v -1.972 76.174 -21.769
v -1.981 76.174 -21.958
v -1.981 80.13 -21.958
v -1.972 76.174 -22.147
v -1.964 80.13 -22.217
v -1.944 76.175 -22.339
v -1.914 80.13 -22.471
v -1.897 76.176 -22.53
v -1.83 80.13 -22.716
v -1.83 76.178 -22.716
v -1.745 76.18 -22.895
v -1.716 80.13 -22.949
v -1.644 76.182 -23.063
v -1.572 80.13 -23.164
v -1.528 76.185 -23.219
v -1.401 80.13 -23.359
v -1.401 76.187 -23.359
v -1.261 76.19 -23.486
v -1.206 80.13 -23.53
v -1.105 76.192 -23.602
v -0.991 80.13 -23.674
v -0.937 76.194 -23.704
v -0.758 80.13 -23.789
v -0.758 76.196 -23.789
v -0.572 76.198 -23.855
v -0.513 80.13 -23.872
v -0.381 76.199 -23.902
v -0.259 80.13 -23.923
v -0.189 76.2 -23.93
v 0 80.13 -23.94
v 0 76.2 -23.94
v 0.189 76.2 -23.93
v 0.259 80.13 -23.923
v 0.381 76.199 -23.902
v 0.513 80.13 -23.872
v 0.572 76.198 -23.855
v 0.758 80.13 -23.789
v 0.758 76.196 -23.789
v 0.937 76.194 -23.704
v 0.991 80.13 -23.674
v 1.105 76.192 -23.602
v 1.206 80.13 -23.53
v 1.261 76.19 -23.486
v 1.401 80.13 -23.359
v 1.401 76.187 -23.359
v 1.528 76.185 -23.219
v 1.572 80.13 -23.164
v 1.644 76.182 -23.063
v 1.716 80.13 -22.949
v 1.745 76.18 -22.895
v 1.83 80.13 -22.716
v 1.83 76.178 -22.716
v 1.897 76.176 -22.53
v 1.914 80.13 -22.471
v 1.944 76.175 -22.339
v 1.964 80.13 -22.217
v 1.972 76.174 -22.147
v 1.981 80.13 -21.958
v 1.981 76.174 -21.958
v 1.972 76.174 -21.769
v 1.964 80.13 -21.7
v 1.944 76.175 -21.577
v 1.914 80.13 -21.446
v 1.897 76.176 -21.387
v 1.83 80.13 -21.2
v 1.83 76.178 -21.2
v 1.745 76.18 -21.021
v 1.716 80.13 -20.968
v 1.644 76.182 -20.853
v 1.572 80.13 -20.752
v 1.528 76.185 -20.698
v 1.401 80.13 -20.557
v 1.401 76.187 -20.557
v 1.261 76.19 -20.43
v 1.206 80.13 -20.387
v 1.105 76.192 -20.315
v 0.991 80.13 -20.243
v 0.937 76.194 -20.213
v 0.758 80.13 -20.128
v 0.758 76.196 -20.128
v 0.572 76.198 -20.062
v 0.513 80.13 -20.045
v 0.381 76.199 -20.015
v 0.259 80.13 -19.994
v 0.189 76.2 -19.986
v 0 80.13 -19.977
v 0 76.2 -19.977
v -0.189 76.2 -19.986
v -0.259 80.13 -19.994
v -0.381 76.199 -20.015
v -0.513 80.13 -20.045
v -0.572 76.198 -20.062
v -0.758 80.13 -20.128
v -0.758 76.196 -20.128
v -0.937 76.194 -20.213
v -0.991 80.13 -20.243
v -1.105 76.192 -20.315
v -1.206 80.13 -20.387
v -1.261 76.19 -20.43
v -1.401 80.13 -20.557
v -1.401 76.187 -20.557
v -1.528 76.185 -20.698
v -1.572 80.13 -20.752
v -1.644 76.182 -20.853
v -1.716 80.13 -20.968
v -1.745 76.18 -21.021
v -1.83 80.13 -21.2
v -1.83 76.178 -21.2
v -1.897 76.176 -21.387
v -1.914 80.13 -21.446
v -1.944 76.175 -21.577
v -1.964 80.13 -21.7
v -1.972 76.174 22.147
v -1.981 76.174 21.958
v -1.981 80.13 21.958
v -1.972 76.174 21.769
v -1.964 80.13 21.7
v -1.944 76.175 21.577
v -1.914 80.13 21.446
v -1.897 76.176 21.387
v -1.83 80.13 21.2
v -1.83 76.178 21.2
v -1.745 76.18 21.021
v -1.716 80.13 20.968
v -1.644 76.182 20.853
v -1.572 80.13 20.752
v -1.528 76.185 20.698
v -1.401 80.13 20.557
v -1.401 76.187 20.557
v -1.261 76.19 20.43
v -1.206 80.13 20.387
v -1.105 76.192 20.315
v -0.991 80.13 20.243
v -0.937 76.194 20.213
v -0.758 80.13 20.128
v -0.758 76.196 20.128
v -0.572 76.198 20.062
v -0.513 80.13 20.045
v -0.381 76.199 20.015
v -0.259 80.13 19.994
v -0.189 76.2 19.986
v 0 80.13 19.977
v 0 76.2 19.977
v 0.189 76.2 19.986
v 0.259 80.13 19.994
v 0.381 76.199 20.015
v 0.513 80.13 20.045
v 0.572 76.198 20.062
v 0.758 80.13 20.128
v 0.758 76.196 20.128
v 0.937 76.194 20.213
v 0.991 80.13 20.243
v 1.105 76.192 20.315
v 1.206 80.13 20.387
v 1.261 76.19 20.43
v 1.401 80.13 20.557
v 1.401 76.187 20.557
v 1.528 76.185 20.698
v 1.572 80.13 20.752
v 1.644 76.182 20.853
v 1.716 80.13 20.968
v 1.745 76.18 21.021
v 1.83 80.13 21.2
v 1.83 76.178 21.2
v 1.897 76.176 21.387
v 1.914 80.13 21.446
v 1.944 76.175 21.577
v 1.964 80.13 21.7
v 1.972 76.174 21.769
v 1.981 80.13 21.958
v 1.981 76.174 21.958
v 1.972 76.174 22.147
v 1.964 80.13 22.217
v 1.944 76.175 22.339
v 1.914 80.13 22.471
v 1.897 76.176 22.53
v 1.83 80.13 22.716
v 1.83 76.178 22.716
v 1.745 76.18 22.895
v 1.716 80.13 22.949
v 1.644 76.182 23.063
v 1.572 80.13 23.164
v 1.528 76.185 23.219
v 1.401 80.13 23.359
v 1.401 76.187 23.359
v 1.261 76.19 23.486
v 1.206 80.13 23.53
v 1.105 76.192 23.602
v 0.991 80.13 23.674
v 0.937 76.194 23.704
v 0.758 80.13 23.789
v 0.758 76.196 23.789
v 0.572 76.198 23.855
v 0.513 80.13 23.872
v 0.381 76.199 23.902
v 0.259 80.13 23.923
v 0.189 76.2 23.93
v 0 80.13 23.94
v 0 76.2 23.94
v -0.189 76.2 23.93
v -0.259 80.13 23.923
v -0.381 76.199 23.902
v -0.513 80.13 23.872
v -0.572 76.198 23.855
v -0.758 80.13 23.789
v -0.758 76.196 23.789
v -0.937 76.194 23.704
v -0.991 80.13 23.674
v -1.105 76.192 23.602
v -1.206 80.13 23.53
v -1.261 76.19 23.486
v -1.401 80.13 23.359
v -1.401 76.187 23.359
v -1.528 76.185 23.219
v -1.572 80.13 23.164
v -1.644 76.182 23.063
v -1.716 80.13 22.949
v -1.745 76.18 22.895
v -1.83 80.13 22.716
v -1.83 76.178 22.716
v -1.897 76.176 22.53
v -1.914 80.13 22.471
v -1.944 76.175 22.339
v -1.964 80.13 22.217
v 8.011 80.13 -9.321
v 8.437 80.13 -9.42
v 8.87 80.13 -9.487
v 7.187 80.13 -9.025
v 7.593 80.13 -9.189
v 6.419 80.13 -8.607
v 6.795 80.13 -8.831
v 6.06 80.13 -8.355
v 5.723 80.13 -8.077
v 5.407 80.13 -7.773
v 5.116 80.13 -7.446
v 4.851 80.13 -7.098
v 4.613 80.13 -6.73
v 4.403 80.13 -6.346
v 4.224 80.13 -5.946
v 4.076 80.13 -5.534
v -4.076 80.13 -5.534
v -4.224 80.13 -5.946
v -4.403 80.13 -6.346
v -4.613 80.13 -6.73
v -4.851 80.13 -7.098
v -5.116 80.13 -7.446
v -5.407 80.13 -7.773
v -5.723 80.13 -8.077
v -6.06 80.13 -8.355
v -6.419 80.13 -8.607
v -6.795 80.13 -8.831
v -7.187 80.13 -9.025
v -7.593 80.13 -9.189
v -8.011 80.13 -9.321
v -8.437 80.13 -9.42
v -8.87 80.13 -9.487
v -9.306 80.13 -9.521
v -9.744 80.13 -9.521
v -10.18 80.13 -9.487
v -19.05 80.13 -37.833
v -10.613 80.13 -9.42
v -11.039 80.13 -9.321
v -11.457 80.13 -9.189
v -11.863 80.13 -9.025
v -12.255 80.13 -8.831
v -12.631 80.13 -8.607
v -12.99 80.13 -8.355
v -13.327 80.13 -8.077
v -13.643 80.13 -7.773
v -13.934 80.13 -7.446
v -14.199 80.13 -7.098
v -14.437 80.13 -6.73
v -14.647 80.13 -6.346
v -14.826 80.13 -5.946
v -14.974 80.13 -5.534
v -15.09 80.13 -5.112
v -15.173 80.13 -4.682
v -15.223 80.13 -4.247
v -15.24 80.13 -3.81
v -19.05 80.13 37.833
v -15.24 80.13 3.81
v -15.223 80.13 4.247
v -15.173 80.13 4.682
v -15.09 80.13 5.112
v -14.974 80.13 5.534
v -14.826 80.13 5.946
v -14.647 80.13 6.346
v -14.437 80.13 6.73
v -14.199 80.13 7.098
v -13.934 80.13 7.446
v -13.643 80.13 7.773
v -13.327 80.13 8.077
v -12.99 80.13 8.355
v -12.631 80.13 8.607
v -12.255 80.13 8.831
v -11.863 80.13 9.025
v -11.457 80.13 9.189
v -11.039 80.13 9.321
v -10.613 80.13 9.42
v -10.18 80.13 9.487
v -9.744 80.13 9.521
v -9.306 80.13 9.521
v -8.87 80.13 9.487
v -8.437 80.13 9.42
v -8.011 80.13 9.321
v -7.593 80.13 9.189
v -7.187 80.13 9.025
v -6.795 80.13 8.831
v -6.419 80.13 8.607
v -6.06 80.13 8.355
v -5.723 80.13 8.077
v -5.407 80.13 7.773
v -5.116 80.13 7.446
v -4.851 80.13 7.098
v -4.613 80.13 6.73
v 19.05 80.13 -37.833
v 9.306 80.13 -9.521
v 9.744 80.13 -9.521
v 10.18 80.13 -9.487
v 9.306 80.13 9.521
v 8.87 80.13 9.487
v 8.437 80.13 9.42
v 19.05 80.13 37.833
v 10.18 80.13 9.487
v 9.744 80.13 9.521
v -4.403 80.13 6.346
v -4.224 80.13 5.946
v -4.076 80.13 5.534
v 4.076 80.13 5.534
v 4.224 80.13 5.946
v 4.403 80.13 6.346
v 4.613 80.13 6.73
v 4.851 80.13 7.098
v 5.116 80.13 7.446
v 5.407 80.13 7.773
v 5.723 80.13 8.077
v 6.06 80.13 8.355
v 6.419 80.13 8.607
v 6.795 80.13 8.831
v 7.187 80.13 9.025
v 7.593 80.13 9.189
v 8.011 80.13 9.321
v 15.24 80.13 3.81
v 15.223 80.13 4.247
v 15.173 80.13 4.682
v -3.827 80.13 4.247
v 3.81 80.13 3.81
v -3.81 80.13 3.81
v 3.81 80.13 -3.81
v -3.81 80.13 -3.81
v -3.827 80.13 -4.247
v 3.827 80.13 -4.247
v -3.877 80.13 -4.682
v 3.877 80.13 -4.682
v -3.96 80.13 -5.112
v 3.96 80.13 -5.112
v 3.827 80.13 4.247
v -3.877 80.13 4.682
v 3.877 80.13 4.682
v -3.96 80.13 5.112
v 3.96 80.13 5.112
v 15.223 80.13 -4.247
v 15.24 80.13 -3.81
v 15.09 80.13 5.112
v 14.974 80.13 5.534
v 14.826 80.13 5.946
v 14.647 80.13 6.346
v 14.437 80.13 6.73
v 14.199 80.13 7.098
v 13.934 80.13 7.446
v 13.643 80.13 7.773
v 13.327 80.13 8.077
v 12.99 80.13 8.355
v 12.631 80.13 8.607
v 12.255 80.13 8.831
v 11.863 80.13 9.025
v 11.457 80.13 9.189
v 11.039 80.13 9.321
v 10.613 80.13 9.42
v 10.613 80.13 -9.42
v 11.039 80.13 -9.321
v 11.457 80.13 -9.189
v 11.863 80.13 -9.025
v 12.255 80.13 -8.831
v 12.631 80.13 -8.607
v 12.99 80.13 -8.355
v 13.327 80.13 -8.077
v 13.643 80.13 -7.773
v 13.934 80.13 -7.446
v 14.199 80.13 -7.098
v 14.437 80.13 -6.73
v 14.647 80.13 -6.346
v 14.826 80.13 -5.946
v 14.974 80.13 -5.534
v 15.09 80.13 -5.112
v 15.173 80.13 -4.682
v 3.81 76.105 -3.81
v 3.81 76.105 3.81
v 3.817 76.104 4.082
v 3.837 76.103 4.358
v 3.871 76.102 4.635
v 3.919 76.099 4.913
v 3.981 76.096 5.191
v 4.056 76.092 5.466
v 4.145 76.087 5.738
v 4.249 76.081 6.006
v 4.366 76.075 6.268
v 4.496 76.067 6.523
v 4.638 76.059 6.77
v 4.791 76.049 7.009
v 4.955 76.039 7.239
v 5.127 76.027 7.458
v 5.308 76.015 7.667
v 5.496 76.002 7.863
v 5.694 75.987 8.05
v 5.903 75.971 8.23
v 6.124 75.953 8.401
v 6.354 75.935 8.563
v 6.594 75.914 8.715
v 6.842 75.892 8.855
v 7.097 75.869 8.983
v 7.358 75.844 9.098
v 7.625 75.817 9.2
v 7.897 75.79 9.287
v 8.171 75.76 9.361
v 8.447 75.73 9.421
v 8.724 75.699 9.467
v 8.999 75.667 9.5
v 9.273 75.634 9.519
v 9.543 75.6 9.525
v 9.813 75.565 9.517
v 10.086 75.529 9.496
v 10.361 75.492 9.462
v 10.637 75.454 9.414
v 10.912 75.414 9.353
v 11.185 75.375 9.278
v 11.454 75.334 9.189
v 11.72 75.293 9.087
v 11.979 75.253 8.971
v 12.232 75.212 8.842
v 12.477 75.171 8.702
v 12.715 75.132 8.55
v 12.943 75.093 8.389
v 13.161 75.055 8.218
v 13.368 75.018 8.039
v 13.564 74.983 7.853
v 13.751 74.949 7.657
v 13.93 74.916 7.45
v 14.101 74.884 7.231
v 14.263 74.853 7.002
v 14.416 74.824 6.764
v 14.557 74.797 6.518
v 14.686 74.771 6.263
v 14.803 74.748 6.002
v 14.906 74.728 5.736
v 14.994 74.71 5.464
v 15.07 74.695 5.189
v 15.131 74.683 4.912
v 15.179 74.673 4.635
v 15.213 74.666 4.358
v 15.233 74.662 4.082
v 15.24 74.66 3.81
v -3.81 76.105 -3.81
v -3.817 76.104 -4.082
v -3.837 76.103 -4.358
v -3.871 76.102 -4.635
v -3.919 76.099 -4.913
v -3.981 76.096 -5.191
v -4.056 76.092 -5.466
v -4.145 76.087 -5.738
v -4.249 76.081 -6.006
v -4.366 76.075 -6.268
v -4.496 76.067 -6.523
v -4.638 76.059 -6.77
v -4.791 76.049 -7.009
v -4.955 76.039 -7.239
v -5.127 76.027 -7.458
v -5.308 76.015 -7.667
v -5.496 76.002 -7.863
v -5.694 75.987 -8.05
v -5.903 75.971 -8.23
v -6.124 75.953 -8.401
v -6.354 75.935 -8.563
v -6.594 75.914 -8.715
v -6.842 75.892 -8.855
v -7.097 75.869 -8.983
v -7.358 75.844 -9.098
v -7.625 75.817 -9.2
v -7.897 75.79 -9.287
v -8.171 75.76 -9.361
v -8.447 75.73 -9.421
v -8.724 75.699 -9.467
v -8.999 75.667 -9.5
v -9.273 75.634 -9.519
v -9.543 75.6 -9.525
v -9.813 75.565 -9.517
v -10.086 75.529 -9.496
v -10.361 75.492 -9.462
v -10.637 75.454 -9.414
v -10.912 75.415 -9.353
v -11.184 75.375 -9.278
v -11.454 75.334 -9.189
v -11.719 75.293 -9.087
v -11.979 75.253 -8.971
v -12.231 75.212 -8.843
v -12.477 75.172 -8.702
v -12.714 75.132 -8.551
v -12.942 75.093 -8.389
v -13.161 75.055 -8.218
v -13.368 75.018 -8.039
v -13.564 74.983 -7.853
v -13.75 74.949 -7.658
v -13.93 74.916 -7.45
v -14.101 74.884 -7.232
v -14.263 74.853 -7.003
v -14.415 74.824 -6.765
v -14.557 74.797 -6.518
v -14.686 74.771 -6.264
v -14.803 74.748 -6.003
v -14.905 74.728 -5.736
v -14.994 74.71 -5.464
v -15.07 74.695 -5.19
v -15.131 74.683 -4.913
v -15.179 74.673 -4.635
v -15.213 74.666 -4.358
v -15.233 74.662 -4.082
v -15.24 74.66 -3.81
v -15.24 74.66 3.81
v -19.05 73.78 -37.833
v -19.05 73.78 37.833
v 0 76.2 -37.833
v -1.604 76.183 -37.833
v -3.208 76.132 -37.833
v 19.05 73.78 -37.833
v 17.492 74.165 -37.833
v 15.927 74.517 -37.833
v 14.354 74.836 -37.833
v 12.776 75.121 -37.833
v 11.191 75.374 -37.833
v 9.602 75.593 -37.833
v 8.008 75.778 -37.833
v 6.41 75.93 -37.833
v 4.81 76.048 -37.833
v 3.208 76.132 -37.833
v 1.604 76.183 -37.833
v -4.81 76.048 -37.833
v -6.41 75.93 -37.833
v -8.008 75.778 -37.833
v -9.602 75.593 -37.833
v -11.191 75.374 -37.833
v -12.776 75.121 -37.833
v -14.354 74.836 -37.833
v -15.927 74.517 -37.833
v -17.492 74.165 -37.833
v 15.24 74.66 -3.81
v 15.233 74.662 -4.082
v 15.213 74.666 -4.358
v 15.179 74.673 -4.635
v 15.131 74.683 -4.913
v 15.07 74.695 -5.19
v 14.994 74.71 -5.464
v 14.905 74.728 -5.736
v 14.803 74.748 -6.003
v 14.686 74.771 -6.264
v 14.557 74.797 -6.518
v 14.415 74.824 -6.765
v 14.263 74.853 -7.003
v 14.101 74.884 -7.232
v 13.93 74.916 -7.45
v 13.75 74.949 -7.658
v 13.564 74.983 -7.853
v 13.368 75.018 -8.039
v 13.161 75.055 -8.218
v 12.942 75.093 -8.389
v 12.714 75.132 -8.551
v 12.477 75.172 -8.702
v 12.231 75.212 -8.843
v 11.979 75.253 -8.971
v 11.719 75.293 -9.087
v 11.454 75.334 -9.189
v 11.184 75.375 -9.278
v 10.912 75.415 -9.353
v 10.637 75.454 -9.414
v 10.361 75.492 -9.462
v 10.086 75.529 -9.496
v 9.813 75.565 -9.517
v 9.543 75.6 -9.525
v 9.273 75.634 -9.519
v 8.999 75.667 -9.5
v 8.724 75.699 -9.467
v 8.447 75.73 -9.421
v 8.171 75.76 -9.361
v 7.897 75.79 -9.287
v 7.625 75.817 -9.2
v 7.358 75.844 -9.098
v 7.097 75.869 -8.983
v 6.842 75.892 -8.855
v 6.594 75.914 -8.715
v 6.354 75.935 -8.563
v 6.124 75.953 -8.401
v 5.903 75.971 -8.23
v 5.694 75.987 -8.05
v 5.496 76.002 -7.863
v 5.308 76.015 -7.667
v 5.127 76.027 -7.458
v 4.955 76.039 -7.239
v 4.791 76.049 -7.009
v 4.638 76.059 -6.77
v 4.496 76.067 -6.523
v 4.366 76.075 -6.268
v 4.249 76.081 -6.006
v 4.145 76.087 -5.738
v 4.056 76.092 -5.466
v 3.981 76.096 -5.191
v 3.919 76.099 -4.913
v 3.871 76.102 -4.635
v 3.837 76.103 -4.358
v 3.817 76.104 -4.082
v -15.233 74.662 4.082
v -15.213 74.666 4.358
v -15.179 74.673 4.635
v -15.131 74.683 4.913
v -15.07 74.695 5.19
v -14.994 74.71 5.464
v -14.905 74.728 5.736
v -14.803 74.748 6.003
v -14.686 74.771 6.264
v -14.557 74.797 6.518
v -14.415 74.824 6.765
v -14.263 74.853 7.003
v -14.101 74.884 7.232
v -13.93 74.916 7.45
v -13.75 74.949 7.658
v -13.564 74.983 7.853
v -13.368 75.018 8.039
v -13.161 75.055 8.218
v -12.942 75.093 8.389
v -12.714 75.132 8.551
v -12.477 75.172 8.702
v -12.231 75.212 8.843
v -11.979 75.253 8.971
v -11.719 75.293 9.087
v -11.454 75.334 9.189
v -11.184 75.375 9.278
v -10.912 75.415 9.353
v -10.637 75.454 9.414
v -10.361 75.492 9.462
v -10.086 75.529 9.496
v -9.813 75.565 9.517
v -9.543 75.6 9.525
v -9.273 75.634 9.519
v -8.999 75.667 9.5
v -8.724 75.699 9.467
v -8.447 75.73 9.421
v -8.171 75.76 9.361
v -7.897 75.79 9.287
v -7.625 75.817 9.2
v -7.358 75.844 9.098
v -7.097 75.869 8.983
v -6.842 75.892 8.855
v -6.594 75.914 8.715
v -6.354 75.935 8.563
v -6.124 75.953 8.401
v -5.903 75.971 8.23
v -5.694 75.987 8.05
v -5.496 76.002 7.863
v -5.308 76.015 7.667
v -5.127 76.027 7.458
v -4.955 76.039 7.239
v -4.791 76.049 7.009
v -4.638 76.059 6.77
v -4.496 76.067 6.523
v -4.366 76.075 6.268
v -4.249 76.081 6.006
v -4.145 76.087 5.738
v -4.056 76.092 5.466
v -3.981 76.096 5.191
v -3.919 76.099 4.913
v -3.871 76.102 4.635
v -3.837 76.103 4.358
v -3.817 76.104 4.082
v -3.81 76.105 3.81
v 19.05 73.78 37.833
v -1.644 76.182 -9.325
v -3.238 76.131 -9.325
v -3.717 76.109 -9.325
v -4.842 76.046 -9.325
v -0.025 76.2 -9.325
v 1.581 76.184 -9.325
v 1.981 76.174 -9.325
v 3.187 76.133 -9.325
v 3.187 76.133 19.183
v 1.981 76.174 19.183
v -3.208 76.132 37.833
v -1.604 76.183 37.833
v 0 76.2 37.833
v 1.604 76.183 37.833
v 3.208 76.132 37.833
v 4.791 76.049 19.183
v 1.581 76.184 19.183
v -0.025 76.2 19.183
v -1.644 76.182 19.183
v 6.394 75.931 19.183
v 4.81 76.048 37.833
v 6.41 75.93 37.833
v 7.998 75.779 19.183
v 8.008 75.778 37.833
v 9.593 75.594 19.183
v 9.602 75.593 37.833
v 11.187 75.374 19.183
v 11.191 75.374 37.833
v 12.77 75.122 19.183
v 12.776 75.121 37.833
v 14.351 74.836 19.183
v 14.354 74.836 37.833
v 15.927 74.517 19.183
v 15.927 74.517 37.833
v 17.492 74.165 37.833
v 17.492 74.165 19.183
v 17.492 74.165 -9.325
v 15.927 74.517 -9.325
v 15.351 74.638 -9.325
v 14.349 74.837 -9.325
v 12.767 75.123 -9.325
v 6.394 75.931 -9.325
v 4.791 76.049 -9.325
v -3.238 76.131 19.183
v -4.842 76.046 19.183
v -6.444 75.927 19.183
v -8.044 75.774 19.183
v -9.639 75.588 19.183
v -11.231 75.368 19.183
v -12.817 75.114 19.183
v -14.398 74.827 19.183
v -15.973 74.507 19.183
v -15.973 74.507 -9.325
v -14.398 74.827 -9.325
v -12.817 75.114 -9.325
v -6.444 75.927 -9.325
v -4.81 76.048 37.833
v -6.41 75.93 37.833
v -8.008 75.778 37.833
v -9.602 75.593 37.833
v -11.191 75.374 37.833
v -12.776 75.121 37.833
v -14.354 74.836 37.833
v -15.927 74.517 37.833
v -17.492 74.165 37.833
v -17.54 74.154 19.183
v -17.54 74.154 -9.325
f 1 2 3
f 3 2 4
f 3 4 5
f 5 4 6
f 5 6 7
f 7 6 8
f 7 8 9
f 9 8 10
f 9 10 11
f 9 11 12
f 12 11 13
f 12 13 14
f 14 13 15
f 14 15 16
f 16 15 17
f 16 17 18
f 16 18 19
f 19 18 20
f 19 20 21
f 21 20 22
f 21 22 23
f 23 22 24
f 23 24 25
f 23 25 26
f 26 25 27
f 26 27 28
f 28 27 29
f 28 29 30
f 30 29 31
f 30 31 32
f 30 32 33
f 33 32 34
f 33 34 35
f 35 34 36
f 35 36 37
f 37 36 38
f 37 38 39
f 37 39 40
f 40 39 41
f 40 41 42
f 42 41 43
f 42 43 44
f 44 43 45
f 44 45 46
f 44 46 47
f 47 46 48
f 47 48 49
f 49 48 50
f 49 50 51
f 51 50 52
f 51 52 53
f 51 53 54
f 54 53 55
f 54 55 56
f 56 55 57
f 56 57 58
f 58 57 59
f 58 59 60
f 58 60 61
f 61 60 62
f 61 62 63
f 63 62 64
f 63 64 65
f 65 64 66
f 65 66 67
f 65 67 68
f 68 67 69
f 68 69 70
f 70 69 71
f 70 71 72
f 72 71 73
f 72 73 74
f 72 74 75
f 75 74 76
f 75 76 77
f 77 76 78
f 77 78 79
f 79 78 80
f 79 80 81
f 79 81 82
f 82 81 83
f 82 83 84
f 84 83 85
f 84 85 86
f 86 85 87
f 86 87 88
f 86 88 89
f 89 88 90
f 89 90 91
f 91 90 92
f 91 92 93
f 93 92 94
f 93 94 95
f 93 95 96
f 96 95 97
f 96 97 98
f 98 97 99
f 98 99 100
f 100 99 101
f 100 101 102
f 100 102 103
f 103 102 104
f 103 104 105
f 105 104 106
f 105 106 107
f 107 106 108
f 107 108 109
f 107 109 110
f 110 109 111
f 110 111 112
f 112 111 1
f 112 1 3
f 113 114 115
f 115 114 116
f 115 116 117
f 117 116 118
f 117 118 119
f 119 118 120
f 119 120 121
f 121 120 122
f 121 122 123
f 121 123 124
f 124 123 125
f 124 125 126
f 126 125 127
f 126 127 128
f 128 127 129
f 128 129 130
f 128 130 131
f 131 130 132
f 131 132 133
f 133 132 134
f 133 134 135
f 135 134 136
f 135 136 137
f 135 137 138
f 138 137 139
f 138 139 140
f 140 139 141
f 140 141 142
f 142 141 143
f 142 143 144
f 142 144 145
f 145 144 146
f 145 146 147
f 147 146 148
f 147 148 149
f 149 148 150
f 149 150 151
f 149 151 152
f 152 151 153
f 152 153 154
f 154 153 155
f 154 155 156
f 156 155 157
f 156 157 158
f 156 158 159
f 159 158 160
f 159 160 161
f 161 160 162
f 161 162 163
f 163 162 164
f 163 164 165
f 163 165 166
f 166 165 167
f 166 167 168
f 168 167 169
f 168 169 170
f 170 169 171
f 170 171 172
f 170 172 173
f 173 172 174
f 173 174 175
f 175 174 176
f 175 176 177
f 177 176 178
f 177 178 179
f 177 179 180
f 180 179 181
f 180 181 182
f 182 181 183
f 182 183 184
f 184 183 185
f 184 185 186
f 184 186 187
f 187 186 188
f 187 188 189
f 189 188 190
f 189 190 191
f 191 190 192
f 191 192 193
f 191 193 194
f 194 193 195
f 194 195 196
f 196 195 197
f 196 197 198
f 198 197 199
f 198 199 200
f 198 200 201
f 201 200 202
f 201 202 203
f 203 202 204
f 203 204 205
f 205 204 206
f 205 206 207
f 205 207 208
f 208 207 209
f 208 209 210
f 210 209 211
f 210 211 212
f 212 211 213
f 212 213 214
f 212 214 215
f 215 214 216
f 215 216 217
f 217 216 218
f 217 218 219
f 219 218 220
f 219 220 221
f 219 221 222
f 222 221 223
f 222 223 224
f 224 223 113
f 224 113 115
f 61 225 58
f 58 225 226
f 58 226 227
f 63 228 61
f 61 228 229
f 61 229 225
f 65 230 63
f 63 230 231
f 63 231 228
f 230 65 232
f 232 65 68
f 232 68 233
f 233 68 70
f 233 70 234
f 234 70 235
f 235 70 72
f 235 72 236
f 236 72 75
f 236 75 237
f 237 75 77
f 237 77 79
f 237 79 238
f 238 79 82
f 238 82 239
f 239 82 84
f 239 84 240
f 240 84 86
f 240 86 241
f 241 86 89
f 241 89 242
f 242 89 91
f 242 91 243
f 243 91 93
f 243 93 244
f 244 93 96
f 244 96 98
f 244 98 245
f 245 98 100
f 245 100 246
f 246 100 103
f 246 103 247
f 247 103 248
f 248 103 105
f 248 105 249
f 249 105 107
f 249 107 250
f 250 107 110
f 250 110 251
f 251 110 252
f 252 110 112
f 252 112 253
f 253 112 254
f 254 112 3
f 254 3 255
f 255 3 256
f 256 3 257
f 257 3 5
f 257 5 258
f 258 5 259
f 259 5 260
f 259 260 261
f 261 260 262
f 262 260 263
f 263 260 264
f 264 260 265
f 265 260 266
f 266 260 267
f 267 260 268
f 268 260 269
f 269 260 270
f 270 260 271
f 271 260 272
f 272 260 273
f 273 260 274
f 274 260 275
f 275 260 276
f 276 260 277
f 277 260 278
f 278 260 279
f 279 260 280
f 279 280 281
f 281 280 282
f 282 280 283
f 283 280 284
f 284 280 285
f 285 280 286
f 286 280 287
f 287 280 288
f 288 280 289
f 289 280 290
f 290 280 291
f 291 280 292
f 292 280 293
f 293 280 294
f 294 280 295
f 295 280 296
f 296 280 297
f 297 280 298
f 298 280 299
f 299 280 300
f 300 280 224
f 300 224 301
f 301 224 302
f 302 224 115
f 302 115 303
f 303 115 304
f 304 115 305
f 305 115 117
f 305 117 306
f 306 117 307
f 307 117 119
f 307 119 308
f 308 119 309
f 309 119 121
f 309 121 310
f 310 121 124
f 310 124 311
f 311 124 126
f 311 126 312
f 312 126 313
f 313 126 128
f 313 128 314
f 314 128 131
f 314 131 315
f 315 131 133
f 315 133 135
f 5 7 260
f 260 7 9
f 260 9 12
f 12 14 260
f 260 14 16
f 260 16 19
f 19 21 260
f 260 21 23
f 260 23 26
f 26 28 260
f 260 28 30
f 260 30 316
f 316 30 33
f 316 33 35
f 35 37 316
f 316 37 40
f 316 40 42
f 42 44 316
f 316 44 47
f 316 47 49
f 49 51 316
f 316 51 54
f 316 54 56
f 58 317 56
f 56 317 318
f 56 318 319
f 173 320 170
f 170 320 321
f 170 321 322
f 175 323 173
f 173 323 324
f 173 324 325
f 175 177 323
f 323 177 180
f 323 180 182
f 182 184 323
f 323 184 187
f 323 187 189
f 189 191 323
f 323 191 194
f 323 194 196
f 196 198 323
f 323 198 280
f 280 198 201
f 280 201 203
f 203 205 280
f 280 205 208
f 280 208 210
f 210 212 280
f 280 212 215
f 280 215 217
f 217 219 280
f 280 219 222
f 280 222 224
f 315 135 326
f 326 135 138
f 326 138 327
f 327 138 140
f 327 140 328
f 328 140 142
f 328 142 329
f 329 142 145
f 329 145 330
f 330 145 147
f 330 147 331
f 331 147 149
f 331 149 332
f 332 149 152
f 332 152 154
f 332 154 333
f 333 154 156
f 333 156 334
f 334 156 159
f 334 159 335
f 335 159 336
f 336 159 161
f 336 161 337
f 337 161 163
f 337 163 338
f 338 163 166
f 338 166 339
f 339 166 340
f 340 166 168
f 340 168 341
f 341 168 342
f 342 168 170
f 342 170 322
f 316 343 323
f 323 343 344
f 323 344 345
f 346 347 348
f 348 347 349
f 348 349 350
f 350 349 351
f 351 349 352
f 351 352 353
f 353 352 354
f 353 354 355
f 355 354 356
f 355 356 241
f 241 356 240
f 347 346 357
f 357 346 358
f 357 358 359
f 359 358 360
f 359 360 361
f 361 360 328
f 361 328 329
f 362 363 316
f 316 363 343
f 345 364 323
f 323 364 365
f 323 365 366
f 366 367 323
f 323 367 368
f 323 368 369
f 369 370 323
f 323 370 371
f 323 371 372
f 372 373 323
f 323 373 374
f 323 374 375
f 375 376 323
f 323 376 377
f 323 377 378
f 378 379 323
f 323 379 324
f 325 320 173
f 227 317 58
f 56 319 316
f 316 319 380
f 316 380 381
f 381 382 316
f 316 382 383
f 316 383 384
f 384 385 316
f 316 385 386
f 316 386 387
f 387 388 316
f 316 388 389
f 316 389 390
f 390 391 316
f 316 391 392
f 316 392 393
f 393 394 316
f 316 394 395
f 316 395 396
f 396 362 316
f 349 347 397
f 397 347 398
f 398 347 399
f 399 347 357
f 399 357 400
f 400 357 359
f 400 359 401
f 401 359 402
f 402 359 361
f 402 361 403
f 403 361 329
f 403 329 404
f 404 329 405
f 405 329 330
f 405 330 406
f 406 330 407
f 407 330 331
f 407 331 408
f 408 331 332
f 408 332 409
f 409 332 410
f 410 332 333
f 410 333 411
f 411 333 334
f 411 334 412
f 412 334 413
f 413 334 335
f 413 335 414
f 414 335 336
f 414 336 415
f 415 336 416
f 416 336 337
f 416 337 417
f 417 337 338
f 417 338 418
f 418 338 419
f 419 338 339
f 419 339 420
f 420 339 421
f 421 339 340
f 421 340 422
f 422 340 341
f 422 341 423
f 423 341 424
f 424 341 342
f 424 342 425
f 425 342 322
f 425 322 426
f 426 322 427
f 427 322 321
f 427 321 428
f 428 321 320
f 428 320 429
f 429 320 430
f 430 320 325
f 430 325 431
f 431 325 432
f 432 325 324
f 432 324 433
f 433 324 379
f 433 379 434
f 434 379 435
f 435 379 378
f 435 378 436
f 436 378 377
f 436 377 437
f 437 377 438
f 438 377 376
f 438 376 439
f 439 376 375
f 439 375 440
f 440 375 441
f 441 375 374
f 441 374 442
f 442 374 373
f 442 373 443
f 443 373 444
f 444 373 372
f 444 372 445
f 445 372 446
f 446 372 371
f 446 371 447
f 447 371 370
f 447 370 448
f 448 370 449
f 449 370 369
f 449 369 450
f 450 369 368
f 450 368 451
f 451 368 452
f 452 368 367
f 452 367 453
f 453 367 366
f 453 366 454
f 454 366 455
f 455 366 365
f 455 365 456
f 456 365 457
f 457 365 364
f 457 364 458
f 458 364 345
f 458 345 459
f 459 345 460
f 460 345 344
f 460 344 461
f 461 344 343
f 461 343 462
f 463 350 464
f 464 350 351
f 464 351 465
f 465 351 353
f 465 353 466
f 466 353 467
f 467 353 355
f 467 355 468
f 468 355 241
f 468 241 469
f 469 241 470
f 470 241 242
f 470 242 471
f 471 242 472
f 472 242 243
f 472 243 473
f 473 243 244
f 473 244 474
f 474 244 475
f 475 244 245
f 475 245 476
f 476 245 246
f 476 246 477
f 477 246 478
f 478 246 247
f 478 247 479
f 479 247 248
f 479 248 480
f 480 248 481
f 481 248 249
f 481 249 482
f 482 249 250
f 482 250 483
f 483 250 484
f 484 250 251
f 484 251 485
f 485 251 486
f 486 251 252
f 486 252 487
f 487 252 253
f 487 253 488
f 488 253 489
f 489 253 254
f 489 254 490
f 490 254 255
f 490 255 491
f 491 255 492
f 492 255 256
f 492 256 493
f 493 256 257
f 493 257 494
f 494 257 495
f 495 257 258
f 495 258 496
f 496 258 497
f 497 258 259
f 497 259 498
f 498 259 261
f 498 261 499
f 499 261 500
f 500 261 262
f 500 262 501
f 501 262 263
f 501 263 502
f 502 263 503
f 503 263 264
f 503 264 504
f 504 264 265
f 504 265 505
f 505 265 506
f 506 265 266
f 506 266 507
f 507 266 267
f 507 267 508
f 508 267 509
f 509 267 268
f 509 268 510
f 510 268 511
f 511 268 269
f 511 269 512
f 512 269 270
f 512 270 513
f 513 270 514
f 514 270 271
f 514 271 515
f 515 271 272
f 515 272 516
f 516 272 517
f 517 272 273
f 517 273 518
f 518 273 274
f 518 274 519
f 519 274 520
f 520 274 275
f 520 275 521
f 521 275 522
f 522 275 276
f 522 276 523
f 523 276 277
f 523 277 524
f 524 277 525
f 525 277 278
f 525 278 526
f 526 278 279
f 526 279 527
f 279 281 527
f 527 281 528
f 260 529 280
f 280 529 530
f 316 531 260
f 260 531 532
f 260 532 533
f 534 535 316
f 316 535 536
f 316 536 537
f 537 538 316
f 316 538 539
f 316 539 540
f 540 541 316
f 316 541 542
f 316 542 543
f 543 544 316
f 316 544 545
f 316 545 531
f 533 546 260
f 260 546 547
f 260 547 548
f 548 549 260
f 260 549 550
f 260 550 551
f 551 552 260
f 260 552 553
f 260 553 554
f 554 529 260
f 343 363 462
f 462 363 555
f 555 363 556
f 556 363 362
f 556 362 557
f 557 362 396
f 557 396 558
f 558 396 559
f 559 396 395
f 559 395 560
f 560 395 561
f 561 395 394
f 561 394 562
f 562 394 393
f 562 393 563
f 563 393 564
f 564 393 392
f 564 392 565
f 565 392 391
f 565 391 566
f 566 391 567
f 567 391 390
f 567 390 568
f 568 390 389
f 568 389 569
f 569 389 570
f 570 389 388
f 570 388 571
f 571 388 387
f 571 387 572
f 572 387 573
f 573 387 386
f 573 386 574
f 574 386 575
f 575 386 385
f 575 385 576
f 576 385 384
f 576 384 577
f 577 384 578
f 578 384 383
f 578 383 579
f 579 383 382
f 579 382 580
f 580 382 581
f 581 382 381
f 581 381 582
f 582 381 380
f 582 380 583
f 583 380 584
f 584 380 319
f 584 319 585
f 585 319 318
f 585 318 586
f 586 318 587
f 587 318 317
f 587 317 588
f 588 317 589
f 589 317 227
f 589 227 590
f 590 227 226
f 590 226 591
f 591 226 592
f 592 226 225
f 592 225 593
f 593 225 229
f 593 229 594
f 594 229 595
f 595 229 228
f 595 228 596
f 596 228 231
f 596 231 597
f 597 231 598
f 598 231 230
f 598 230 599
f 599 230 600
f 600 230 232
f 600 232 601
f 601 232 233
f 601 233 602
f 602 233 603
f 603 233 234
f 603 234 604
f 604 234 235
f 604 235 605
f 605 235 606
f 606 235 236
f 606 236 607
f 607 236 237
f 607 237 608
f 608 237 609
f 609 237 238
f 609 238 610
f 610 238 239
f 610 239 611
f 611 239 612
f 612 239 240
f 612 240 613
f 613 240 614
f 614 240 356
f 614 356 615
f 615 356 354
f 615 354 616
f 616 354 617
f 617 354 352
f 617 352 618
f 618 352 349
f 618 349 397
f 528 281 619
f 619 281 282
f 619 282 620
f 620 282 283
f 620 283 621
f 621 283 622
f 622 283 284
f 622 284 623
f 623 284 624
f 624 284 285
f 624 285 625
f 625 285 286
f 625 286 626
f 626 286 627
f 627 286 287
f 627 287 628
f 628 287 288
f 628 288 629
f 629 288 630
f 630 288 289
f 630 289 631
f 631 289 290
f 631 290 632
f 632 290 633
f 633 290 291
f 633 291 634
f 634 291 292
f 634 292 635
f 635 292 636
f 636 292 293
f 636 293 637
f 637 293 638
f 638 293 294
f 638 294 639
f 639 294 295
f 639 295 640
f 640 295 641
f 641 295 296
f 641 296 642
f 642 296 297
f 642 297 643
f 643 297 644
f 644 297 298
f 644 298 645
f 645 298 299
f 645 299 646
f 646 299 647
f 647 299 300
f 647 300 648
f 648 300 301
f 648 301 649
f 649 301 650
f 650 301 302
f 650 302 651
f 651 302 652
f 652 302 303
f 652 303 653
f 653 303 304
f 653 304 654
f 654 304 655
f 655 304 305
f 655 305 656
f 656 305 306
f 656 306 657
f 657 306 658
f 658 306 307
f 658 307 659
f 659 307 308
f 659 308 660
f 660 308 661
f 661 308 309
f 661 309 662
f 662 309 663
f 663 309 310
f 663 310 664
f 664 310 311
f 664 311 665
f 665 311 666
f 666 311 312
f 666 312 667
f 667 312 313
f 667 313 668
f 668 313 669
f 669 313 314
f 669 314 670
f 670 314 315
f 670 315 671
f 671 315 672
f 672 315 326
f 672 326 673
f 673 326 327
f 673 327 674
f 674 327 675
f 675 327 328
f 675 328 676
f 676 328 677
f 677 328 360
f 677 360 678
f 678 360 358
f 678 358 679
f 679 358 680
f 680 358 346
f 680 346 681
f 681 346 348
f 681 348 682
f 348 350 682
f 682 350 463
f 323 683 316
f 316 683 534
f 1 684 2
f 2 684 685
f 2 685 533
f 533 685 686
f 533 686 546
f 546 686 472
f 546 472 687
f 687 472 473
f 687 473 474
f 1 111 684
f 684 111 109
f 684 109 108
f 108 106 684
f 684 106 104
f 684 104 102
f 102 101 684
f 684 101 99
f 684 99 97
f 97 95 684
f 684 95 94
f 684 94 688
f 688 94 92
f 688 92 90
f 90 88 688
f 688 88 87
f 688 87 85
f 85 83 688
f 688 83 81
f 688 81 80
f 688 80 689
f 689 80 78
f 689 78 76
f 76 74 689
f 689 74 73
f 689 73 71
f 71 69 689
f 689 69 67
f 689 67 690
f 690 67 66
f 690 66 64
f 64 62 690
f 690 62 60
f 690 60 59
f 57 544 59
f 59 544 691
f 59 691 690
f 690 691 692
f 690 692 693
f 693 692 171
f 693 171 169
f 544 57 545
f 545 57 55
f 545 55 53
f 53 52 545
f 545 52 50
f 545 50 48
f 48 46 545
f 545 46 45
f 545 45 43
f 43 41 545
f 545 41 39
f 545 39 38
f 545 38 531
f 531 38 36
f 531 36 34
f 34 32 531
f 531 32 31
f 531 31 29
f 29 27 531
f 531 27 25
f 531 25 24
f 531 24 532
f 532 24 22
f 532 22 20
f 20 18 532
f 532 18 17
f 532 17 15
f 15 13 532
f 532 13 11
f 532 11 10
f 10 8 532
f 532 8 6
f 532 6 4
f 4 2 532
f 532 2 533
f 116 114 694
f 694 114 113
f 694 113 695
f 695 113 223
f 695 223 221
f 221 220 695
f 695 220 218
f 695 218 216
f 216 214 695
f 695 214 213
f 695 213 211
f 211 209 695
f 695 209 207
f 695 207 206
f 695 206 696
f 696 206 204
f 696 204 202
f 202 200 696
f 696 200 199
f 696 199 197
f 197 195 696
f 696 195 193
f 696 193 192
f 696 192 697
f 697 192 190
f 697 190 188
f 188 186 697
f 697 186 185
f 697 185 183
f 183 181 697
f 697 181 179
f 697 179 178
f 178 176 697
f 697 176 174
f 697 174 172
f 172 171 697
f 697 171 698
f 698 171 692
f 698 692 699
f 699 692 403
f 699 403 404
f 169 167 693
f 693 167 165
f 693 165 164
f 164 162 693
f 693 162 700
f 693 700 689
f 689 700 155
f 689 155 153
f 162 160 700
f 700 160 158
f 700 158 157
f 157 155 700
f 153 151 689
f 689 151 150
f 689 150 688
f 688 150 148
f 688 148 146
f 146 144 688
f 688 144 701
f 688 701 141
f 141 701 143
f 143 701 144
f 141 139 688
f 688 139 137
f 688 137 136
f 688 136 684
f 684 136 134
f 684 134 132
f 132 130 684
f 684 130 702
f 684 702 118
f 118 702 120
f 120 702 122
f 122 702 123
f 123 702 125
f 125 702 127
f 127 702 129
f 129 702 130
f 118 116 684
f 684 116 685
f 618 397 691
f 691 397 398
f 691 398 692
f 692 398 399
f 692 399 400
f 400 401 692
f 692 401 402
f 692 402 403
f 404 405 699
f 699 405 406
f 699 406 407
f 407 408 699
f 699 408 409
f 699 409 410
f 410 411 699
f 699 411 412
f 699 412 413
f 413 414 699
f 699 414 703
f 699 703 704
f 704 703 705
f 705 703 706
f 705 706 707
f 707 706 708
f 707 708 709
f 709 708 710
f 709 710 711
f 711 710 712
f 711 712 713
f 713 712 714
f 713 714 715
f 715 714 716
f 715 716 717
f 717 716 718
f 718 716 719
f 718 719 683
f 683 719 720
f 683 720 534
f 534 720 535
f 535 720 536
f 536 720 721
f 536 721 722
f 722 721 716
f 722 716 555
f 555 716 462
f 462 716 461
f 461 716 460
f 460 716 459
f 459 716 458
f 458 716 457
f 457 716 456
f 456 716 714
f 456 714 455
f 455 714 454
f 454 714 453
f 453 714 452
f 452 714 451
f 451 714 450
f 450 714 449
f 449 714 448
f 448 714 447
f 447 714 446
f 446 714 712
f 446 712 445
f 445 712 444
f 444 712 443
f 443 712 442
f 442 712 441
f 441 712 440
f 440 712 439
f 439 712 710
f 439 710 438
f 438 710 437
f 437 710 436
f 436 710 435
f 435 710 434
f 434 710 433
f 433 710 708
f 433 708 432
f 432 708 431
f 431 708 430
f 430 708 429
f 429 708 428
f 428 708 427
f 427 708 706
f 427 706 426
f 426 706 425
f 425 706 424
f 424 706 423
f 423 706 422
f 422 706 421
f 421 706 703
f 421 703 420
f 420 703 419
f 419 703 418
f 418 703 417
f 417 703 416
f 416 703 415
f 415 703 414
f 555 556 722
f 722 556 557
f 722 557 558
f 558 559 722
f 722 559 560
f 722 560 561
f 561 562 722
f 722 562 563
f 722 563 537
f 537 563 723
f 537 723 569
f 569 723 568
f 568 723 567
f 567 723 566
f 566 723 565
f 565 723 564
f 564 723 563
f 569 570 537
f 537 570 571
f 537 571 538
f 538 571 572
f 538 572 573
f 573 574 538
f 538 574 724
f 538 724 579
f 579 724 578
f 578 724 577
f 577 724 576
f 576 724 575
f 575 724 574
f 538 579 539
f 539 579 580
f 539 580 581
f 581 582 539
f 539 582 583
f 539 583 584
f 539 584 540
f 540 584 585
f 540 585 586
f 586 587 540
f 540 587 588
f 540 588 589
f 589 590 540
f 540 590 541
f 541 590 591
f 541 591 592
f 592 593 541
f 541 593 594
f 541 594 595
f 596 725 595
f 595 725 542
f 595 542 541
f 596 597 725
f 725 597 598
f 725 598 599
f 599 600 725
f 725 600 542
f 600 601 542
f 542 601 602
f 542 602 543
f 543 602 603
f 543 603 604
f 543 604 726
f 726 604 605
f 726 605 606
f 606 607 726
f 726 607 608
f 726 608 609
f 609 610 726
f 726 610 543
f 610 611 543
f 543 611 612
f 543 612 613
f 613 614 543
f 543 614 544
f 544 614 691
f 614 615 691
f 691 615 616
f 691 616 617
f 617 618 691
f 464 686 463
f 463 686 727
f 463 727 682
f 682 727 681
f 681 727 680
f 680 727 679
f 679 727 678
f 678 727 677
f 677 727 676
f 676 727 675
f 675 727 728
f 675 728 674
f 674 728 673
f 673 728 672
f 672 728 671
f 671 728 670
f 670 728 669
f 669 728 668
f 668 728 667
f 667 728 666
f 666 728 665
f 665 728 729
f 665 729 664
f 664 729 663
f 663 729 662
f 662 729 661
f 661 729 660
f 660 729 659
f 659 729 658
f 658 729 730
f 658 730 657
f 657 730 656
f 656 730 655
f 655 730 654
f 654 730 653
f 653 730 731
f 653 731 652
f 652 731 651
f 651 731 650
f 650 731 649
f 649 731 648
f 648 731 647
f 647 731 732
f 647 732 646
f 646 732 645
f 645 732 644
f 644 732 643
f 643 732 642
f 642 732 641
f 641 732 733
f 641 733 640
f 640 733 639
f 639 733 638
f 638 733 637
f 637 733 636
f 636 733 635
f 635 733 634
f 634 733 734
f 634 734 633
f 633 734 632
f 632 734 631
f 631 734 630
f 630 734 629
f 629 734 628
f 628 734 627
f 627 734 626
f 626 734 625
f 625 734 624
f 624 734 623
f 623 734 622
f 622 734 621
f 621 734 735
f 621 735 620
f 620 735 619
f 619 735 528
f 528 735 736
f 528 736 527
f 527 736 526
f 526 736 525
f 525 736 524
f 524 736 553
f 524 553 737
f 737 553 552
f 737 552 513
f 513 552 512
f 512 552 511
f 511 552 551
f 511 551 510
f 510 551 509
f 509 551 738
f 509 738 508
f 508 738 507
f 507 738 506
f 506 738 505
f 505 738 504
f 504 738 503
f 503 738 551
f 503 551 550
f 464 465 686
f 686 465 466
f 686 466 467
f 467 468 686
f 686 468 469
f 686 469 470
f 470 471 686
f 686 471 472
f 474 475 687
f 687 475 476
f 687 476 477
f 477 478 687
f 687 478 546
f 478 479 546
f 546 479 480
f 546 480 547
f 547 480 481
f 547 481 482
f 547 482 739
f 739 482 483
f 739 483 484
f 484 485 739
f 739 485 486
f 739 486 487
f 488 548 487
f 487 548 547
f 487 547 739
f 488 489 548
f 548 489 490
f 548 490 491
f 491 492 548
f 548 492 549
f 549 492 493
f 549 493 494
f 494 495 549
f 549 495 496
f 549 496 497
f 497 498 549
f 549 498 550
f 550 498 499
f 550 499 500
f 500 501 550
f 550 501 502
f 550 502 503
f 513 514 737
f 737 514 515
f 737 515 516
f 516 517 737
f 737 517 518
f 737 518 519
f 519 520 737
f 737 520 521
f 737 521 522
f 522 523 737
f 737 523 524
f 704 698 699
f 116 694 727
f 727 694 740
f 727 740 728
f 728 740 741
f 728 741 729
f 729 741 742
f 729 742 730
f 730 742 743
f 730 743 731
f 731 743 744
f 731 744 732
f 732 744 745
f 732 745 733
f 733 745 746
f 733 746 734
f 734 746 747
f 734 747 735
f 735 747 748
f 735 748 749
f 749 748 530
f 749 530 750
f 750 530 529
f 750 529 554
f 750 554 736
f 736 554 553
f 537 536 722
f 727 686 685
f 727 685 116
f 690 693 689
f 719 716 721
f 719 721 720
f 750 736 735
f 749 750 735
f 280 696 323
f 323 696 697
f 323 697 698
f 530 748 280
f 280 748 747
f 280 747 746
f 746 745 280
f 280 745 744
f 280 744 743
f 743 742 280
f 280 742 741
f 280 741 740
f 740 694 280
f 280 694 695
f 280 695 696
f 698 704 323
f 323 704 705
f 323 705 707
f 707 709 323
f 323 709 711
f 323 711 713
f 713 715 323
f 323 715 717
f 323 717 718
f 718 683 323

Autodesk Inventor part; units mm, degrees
ref_plane "YZ Plane" through (0, 0, 0) normal (1, 0, 0) x (0, 1, 0)
ref_plane "XY Plane" through (0, 0, 0) normal (0, 0, 1) x (1, 0, 0)
sketch "Sketch1" plane through (0, 0, 0) normal (0, 0, 1) x (1, 0, 0)
  arc A0 (19.05, 73.7803) -> (-19.05, 73.7803) centre (0, 0) ccw
  line L0 (0, 86.4803) -> (19.05, 86.4803)
  line L1 (19.05, 86.4803) -> (19.05, 73.7803)
  line L2 (0, 76.2) -> (0, 86.4803) construction
  line L3 (0, 86.4803) -> (-19.05, 86.4803)
  line L4 (-19.05, 86.4803) -> (-19.05, 73.7803)
  dimension "d0" = 152.4
  dimension "d1" = 19.05
  dimension "d2" = 12.7
extrude "Extrusion1" add sketch "Sketch1" along normal mid plane 75.6666
sketch "Sketch2" plane through (-19.05, 86.4803, 37.8333) normal (0, 1, 0) x (1, 0, 0)
  line L0 (0, 75.6666) -> (0, 0) construction
  line L1 (0, 37.8333) -> (38.1, 37.8333) construction
  line L2 (38.1, 75.6666) -> (38.1, 0) construction
  line L3 (0, 75.6666) -> (38.1, 75.6666) construction
  line L4 (19.05, 75.6666) -> (19.05, 0) construction
  line L5 (38.1, 0) -> (0, 0) construction
  line L6 (28.575, 32.4358) -> (28.575, 43.2308) construction
  line L7 (26.3525, 32.4358) -> (26.3525, 43.2308)
  line L8 (30.7975, 43.2308) -> (30.7975, 32.4358)
  arc A0 (26.3525, 32.4358) -> (30.7975, 32.4358) centre (28.575, 32.4358) ccw
  arc A1 (30.7975, 43.2308) -> (26.3525, 43.2308) centre (28.575, 43.2308) ccw
  line L9 (11.7475, 32.4358) -> (11.7475, 43.2308)
  line L10 (7.3025, 43.2308) -> (7.3025, 32.4358)
  arc A2 (7.3025, 32.4358) -> (11.7475, 32.4358) centre (9.525, 32.4358) ccw
  arc A3 (11.7475, 43.2308) -> (7.3025, 43.2308) centre (9.525, 43.2308) ccw
  point P0 (19.05, 37.8333)
  point P1 (28.575, 37.8333)
  dimension "d5" = 9.525
  dimension "d6" = 4.445
  dimension "d7" = 15.24
  dimension "d8" = 19.05
extrude "Extrusion2" cut sketch "Sketch2" against normal through all
ref_plane "Work Plane1" through (19.05, 73.7803, 37.8333) normal (0, 1, 0) x (-1, 0, 0)
sketch "Sketch4" plane through (19.05, 73.7803, 37.8333) normal (0, 1, 0) x (-1, 0, 0)
  line L0 (11.7475, -43.2308) -> (11.7475, -32.4358) projected
  line L1 (11.7475, -32.4358) -> (11.7475, -43.2308) construction
  line L2 (11.7475, -37.8333) -> (7.3025, -37.8333) construction
  line L3 (7.3025, -43.2308) -> (7.3025, -32.4358) construction
  line L4 (9.525, -41.6433) -> (9.525, -34.0233) construction
  line L5 (15.24, -41.6433) -> (15.24, -34.0233)
  line L6 (3.81, -34.0233) -> (3.81, -41.6433)
  arc A0 (3.81, -41.6433) -> (15.24, -41.6433) centre (9.525, -41.6433) ccw
  arc A1 (15.24, -34.0233) -> (3.81, -34.0233) centre (9.525, -34.0233) ccw
  line L7 (0, 0) -> (38.1, 0) construction
  line L8 (19.05, 0) -> (19.05, -75.6666) construction
  line L9 (38.1, -75.6666) -> (0, -75.6666) construction
  line L10 (22.86, -41.6433) -> (22.86, -34.0233)
  line L11 (34.29, -34.0233) -> (34.29, -41.6433)
  arc A2 (22.86, -41.6433) -> (34.29, -41.6433) centre (28.575, -41.6433) ccw
  arc A3 (34.29, -34.0233) -> (22.86, -34.0233) centre (28.575, -34.0233) ccw
  point P0 (19.05, -37.8333)
  point P1 (9.525, -37.8333)
  dimension "d11" = 11.43
  dimension "d12" = 19.05
extrude "Extrusion3" cut sketch "Sketch4" along normal blind 7.62
sketch "Sketch20" plane through (19.05, 73.7803, 37.8333) normal (1, 0, 0) x (0, 0, -1)
  line L0 (0, 12.7) -> (0, 0) projected
  line L1 (75.6666, 12.7) -> (0, 12.7) projected
  line L2 (0, 6.35) -> (75.6666, 6.35)
  line L3 (75.6666, 6.35) -> (75.6666, 12.7)
  line L4 (75.6666, 12.7) -> (0, 12.7)
  line L5 (0, 12.7) -> (0, 6.35)
  point P0 (37.8333, -73.7803)
extrude "Extrusion7" cut sketch "Sketch20" against normal through all
sketch "Sketch21" plane through (19.05, 80.1303, 37.8333) normal (0, 1, 0) x (1, 0, 0)
  line L0 (-38.1, 75.6666) -> (0, 75.6666) construction
  line L1 (0, 0) -> (-38.1, 0) construction
  point P0 (-19.05, 37.8333)
  point P1 (-19.05, 59.7916)
  point P2 (-19.05, 15.875)
  dimension "d170" = 15.875
  dimension "d171" = 15.875
hole "Hole1" at (0, 80.1303, -21.9583) at (0, 80.1303, 21.9583) direction (0, -1, 0) diameter 3.9624 end through all thread size "10-32 UNF" class "2B" standard "ANSI Unified Screw Threads"
equation "\"d51\" = 0.125 * Sketch8_Pitch"
equation "\"Sketch8_Pitch\" = 0.79375"
equation "\"d53\" = 60deg"
equation "\"d72\" = 0.125 * Sketch10_Pitch"
equation "\"Sketch10_Pitch\" = 0.79375"
equation "\"d74\" = 60deg"
equation "\"d93\" = 0.125 * Sketch12_Pitch"
equation "\"Sketch12_Pitch\" = 0.79375"
equation "\"d95\" = 60deg"
equation "\"d114\" = 0.125 * Sketch14_Pitch"
equation "\"Sketch14_Pitch\" = 0.79375"
equation "\"d116\" = 60deg"
equation "\"d135\" = 0.125 * Sketch16_Pitch"
equation "\"Sketch16_Pitch\" = 0.79375"
equation "\"d137\" = 60deg"
equation "\"d156\" = 0.125 * Sketch18_Pitch"
equation "\"Sketch18_Pitch\" = 0.79375"
equation "\"d158\" = 60deg"
properties part number "finderSupportPartV05"
